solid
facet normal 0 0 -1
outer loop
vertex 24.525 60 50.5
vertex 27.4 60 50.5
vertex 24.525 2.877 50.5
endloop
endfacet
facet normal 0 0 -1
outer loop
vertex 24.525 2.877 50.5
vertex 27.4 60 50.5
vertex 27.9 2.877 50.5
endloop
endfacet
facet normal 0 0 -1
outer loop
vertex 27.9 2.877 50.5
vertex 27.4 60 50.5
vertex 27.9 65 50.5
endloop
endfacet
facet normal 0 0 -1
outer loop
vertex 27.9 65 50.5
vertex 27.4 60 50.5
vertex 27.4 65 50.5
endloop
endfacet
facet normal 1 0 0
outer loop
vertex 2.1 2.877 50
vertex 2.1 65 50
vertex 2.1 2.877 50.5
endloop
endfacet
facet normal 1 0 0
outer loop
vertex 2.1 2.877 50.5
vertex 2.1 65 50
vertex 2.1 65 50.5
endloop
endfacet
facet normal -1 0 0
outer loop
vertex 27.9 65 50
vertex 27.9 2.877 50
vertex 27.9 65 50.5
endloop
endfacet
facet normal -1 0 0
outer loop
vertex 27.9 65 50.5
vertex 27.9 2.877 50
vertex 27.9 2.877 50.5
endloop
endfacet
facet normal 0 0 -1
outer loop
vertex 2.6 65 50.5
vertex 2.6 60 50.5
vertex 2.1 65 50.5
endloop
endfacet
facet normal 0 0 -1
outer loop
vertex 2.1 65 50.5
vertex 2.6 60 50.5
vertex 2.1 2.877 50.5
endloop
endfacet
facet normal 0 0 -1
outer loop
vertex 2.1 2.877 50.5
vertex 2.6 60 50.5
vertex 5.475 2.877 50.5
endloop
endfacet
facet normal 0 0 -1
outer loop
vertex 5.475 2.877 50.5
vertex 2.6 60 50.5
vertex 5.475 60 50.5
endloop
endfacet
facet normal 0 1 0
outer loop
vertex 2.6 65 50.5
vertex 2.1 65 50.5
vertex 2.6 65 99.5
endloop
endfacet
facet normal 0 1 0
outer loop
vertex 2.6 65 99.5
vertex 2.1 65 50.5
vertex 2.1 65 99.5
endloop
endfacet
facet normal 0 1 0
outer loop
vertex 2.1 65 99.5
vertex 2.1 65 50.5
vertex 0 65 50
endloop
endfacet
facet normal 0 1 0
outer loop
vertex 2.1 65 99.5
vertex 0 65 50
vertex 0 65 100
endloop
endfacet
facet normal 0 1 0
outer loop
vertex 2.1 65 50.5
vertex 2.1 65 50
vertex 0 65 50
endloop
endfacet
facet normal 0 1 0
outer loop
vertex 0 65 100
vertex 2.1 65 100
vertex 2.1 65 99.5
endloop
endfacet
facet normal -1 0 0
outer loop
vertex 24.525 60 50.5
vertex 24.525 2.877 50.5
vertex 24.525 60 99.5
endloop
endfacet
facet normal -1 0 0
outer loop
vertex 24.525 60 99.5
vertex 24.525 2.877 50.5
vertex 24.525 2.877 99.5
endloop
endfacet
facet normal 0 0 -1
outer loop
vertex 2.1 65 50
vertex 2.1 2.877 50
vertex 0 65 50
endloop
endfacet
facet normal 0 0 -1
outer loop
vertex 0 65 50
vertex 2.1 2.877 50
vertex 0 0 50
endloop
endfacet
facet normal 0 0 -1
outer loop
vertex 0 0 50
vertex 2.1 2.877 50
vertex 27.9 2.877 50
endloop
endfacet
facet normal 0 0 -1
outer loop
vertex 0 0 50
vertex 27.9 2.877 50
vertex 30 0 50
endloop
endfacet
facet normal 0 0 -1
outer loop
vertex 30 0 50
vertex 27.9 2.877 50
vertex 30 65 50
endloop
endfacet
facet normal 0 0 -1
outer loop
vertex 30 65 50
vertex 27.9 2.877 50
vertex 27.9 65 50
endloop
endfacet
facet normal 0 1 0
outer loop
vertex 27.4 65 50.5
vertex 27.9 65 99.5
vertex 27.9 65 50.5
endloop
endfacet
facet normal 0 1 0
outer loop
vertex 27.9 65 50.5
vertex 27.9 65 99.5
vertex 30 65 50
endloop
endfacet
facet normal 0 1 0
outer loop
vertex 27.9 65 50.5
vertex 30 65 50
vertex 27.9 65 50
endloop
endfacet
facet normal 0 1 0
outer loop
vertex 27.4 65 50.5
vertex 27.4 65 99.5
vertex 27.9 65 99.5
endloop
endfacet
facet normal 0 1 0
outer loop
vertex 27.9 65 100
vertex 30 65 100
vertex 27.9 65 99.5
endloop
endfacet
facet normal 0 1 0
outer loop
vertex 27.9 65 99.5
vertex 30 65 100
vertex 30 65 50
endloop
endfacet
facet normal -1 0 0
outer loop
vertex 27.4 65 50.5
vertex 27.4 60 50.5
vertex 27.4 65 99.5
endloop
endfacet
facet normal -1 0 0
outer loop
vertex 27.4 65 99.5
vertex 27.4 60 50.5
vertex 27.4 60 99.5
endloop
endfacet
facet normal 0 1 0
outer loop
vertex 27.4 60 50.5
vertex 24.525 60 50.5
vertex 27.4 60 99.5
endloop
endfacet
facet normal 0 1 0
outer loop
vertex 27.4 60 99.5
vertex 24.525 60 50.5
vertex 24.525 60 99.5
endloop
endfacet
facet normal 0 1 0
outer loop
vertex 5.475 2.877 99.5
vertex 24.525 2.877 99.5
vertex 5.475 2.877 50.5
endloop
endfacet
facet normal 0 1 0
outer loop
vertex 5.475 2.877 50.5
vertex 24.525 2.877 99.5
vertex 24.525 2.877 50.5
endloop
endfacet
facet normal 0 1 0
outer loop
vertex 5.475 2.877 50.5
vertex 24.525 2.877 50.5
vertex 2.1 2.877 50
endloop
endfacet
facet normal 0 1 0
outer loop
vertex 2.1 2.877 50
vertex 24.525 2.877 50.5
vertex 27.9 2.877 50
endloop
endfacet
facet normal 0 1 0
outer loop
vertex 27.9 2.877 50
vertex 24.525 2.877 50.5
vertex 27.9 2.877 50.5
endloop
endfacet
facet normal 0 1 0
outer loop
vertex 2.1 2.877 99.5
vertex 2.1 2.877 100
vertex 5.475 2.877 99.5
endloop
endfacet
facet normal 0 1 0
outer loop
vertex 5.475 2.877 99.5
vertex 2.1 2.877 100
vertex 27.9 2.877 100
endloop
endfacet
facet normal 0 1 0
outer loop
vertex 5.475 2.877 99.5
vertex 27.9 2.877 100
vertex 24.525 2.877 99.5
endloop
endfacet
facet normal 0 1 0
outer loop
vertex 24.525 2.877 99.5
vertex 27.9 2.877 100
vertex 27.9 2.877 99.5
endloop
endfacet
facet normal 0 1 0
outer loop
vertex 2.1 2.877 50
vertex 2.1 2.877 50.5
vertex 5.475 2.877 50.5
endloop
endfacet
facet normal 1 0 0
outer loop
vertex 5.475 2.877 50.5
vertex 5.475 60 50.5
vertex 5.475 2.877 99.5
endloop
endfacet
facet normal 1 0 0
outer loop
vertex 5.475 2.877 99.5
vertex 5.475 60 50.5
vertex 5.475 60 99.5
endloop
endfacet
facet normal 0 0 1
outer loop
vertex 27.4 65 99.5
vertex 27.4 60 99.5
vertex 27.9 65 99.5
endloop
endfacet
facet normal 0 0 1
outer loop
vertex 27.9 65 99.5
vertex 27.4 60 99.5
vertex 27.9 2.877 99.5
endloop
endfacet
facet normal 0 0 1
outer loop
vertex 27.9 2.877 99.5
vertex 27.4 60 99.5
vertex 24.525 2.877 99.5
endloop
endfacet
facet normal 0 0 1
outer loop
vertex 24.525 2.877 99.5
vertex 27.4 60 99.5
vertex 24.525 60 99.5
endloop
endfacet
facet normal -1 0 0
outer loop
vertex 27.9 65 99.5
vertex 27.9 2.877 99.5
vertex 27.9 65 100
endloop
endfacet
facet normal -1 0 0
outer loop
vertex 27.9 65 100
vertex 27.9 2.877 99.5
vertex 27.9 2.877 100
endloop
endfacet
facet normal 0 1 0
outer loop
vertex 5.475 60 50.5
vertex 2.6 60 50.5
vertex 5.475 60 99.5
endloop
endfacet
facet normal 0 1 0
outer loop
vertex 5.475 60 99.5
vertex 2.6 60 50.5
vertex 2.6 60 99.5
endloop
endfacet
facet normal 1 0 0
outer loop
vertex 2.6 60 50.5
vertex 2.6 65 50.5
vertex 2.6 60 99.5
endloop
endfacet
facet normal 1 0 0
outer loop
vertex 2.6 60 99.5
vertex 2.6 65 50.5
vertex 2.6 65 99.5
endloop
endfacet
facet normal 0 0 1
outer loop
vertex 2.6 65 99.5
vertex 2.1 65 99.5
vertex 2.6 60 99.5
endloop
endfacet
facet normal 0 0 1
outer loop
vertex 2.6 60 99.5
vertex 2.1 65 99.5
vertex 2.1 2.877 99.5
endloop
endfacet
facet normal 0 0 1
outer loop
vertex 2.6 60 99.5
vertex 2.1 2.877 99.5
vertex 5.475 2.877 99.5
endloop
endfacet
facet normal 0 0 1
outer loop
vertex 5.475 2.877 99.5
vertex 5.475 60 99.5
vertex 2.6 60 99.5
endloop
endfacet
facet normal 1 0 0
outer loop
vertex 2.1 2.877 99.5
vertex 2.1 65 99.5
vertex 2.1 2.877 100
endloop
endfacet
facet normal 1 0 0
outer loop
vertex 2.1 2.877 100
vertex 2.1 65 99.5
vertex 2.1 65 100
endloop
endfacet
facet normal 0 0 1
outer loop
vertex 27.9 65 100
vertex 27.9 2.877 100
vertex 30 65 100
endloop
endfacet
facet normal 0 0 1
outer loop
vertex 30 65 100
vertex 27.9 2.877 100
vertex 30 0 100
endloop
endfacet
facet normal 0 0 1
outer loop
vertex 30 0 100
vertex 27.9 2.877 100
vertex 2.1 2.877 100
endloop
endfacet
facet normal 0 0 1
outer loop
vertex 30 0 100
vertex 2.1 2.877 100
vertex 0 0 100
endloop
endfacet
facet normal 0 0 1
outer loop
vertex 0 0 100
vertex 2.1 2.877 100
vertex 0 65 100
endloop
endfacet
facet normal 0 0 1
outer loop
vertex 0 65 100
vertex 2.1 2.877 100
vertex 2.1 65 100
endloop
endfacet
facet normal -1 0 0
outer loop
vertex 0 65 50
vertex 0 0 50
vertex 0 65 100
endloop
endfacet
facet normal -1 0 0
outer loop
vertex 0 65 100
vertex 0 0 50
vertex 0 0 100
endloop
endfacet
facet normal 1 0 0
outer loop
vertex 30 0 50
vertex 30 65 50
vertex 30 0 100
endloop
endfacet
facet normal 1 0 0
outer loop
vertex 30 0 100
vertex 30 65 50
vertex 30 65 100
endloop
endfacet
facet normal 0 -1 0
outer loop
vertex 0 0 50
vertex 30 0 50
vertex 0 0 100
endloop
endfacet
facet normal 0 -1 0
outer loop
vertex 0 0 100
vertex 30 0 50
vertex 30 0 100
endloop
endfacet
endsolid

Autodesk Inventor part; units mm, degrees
ref_plane "XZ Plane" through (0, 0, 0) normal (0, 1, 0) x (-1, 0, 0)
sketch "Sketch1" plane through (0, 0, 0) normal (0, 0, 1) x (1, 0, 0)
  line L0 (0, 0) -> (30, 0)
  line L1 (30, 0) -> (30, 65)
  line L2 (30, 65) -> (0, 65)
  line L3 (0, 65) -> (0, 0)
  dimension "d0" = 30
  dimension "d1" = 65
extrude "Extrusion1" add sketch "Sketch1" along normal blind 100
sketch "Sketch2" plane through (0, 0, 100) normal (0, 0, 1) x (1, 0, 0)
  line L0 (2.1, 2.877) -> (27.9, 2.877)
  line L1 (27.9, 2.877) -> (27.9, 68.621)
  line L2 (27.9, 68.621) -> (2.1, 68.621)
  line L3 (2.1, 68.621) -> (2.1, 2.877)
  line L4 (30, 65) -> (0, 65) construction
  line L5 (15, 65) -> (15, 0) construction
  line L6 (0, 0) -> (30, 0) construction
  dimension "d4" = 25.8
extrude "Extrusion2" cut sketch "Sketch2" against normal blind 100
ref_plane "Work Plane1" through (0, 0, 50) normal (0, 0, 1) x (1, 0, 0)
sketch "Sketch3" plane through (0, 0, 50) normal (0, 0, 1) x (1, 0, 0)
  line L0 (2.1, 2.877) -> (27.9, 2.877) construction
  line L1 (15, 2.877) -> (15, 72.0179) construction
  line L2 (15, 65) -> (2.1, 65) construction
  line L3 (2.1, 65) -> (0, 65) construction
  line L4 (2.1, 65) -> (2.6, 65)
  line L5 (2.6, 65) -> (2.6, 60)
  line L6 (2.6, 60) -> (2.1, 60)
  line L7 (2.1, 60) -> (2.1, 65)
  line L8 (15, 60) -> (5.475, 60) construction
  line L9 (5.475, 60) -> (2.1, 60)
  line L10 (2.1, 60) -> (2.1, 2.877)
  line L11 (2.1, 2.877) -> (5.475, 2.877)
  line L12 (5.475, 2.877) -> (5.475, 60)
  point P0 (0, 0)
  dimension "d8" = 0.5
  dimension "d9" = 5
  dimension "d10" = 9.525
extrude "Extrusion3" add sketch "Sketch3" along normal mid plane 99
ref_plane "Work Plane2" through (15, 0, 0) normal (1, 0, 0) x (0, 1, 0)
mirror "Mirror1" about plane through (15, 0, 0) normal (1, 0, 0) of "Extrusion3"
split "Split1" plane through (0, 0, 50) removes the side toward (0, 0, -1)
sketch "Sketch4" plane through (30, 0, 50) normal (0, 0, -1) x (-1, 0, 0)
  line L0 (27.9, 2.877) -> (27.9, 65) projected
  line L1 (2.1, 65) -> (2.1, 2.877) projected
  line L2 (27.9, 2.877) -> (2.1, 2.877)
  line L3 (2.1, 2.877) -> (2.1, 65)
  line L4 (2.1, 65) -> (27.9, 65)
  line L5 (27.9, 65) -> (27.9, 2.877)
  point P0 (30, 0)
extrude "Extrusion4" cut sketch "Sketch4" against normal blind 0.5
properties part number "Reactor Bottom_v2" material "Polyethylene, Low Density"
